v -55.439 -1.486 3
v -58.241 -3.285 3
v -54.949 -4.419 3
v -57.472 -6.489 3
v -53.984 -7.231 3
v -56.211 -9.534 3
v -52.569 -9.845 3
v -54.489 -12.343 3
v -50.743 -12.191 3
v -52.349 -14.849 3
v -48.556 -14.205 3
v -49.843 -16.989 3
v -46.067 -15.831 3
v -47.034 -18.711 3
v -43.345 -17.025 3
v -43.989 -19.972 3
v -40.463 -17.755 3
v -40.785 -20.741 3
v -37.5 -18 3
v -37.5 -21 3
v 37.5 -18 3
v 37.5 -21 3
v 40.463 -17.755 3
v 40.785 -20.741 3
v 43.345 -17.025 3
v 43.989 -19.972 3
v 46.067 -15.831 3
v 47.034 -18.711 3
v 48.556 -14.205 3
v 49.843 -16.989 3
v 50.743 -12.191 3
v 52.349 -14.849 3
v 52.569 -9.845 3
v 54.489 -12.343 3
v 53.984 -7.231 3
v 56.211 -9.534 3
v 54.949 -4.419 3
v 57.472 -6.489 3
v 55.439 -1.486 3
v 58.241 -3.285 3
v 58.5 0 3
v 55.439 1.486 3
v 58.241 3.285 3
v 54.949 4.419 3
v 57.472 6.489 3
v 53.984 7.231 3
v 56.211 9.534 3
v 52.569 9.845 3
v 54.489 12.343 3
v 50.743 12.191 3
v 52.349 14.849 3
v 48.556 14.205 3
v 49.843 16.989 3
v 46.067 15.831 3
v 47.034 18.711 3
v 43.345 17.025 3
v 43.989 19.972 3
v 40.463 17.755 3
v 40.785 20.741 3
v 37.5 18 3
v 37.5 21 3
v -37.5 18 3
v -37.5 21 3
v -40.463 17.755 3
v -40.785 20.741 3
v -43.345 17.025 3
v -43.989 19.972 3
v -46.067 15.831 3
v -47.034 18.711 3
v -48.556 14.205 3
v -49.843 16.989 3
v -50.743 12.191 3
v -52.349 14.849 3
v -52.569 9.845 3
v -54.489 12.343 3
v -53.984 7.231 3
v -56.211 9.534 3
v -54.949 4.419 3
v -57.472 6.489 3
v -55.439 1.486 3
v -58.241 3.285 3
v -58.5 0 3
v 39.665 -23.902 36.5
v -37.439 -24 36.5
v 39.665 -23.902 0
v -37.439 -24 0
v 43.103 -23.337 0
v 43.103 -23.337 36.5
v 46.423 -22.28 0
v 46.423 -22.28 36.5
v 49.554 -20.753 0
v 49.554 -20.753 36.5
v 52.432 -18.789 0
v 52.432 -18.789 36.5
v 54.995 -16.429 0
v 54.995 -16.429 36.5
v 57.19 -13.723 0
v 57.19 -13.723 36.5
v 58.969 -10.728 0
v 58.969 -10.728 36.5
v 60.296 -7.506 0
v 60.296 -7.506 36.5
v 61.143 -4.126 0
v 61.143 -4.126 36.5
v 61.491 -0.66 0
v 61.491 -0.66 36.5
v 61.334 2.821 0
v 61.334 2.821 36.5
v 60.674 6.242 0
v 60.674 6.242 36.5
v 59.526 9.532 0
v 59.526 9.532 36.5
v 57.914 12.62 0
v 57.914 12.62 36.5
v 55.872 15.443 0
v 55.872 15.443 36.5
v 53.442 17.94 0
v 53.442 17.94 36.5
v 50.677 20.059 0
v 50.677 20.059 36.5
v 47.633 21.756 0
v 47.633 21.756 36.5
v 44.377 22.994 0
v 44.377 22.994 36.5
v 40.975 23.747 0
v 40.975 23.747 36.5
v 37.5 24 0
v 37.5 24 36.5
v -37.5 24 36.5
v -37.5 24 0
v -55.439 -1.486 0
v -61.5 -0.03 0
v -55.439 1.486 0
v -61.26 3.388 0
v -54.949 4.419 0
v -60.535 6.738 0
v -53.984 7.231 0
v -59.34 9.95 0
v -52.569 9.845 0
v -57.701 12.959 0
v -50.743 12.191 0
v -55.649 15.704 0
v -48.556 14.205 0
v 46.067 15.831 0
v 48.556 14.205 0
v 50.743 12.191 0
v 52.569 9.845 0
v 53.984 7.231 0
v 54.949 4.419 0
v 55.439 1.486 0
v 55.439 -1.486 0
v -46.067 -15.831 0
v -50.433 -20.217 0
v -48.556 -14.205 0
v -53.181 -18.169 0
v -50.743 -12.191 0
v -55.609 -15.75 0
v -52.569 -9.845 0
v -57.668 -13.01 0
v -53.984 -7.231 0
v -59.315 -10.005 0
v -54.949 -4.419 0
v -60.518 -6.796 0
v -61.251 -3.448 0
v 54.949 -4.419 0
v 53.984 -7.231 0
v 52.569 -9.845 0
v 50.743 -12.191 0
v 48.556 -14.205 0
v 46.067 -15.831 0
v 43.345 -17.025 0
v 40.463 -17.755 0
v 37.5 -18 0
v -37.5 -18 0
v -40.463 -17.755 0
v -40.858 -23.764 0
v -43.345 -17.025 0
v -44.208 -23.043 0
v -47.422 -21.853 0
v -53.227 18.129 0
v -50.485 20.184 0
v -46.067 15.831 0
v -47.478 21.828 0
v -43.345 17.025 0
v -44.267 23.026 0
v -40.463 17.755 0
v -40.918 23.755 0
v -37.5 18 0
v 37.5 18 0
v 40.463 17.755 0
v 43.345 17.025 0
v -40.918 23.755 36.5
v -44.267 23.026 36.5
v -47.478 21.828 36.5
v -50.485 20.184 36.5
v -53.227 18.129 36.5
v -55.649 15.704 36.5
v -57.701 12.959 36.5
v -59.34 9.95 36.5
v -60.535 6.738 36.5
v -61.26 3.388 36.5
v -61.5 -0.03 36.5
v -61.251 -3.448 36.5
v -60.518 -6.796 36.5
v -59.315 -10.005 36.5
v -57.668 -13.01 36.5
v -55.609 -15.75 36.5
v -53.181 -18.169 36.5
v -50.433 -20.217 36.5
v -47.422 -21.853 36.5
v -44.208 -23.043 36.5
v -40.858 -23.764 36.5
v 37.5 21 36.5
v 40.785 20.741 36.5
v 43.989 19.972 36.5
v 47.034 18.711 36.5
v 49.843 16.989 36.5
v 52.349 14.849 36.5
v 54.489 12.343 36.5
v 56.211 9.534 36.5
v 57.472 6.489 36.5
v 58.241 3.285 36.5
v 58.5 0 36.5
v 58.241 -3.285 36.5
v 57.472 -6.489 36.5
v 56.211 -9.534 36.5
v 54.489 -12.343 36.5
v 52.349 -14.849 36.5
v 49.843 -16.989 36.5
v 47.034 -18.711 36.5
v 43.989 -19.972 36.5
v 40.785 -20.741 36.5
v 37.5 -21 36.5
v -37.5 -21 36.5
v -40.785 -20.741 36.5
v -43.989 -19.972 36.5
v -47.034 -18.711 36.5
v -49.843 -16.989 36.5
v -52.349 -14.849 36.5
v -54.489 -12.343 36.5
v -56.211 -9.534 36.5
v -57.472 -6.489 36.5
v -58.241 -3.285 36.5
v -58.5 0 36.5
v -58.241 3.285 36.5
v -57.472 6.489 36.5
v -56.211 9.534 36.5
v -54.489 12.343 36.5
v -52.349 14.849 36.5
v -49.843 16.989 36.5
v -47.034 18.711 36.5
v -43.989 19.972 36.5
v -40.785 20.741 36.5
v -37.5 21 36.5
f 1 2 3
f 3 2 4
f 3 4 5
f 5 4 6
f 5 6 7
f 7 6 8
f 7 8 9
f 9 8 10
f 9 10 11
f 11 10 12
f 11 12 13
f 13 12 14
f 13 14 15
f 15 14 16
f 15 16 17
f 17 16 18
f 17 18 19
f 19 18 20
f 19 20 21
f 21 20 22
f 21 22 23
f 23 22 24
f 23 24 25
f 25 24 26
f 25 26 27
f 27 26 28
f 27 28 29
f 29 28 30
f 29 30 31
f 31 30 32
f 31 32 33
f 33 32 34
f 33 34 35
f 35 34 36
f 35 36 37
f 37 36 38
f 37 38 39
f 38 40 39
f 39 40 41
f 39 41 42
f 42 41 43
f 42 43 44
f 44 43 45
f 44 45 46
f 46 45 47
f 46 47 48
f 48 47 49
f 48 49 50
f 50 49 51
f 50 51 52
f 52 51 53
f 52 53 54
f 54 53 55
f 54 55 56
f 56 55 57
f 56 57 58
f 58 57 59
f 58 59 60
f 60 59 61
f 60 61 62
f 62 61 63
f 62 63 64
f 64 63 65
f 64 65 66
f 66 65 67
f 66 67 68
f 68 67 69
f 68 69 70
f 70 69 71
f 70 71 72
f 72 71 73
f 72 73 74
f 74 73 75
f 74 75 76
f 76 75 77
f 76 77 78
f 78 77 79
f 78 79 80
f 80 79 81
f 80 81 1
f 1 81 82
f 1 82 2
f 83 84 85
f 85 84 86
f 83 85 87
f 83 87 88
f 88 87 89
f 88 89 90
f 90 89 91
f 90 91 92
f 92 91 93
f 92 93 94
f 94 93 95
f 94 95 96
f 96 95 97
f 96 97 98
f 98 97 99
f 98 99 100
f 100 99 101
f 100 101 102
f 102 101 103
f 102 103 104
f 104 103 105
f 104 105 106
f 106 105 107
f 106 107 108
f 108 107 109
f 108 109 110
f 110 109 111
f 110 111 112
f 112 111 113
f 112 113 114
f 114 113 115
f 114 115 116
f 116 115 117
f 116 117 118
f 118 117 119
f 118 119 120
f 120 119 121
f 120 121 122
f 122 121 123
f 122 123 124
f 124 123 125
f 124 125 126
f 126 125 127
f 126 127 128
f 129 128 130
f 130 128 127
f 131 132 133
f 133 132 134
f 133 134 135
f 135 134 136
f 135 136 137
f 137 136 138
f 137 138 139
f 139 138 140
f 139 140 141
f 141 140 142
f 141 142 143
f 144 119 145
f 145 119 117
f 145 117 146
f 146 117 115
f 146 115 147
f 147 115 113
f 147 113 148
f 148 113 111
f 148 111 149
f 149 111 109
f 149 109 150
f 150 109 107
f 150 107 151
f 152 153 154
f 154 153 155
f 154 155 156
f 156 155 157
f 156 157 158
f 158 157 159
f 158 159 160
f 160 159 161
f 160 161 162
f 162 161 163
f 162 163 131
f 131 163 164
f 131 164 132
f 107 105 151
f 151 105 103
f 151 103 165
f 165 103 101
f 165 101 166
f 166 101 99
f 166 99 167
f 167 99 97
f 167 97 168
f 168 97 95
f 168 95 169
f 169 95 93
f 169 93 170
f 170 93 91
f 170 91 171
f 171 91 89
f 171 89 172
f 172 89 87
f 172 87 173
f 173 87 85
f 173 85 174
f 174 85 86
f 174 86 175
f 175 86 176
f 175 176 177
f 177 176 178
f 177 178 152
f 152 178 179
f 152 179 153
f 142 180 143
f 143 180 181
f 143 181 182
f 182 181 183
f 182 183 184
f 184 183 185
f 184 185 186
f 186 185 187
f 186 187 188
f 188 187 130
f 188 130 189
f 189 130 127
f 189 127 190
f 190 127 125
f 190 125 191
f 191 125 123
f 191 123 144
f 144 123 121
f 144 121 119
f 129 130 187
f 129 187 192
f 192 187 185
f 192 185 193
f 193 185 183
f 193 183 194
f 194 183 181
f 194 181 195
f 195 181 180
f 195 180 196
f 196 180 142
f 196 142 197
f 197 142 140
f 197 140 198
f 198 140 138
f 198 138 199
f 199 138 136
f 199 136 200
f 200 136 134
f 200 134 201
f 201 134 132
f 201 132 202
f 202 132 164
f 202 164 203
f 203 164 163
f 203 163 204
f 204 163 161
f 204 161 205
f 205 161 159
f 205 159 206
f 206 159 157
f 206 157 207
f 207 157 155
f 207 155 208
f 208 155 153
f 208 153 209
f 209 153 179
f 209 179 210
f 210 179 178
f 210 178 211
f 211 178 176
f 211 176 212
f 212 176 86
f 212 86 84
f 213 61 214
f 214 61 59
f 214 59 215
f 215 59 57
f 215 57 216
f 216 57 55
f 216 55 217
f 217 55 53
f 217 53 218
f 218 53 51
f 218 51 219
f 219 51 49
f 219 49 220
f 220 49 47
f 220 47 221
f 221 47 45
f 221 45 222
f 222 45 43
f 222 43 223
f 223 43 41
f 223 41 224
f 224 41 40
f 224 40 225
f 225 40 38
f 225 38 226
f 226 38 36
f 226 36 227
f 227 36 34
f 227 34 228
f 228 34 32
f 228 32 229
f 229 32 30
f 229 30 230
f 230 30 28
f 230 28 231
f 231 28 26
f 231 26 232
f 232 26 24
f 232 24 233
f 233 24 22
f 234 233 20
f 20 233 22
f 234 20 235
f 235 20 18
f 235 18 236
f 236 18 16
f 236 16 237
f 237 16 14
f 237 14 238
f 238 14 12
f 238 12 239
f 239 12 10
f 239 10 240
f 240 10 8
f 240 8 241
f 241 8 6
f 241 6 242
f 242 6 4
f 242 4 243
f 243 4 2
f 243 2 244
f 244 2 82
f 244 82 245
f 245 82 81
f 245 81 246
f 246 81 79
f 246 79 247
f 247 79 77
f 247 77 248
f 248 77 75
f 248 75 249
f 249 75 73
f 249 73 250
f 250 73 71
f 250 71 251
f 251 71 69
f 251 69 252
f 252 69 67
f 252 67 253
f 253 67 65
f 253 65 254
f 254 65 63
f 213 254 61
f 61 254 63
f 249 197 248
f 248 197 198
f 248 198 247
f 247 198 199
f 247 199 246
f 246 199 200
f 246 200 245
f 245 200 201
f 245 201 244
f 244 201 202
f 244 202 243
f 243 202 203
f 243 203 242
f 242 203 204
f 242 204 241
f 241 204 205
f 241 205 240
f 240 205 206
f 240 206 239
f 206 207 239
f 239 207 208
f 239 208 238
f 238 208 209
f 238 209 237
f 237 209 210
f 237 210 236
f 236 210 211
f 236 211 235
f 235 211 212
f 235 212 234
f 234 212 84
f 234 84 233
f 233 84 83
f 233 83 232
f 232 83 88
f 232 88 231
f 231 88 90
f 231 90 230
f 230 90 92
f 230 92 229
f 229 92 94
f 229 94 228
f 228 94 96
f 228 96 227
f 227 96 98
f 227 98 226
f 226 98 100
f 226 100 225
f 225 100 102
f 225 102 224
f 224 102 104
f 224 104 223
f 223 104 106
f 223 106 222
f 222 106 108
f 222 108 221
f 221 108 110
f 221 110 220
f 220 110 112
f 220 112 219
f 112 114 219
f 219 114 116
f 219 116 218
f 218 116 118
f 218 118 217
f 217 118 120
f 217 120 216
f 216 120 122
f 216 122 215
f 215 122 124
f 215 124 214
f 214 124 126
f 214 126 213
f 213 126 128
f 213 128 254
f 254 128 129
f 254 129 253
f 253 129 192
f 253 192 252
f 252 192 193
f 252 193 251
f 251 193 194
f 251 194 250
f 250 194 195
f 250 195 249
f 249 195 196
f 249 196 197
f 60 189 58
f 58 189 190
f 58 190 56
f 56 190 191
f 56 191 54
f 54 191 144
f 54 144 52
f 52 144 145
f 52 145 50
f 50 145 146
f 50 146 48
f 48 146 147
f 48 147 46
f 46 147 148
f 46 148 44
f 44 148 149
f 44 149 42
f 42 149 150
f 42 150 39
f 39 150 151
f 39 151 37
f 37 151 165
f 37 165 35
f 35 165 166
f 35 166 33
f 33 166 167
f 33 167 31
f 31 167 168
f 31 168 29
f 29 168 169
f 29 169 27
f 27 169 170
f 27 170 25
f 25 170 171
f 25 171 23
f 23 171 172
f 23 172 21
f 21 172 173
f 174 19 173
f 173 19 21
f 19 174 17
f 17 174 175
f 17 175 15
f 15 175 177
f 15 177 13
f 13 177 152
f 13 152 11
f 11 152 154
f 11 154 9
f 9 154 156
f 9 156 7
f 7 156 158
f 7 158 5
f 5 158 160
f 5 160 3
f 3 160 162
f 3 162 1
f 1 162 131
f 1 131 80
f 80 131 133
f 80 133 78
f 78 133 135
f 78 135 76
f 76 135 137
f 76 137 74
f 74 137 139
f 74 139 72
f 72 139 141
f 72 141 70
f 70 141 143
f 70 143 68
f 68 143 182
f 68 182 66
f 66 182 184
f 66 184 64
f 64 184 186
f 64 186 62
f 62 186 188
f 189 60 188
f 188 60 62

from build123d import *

# Parameters (mm, degrees)
BOSS_EXTRUDE2_DEPTH = 3
BOSS_EXTRUDE3_DEPTH = 33.5
CUT_EXTRUDE1_DEPTH  = 3


with BuildPart() as part:
    # Sketch1 → Boss-Extrude2 (new body)
    with BuildSketch(Plane.XY):
        with BuildLine():
            ThreePointArc((-37.5, 24), (-61.5, 0), (-37.5, -24))
            Line((-37.5, -24), (39.664725273, -23.90217489))
            ThreePointArc((39.664725273, -23.90217489), (61.475531249, 1.083467265), (37.5, 24))
            Line((37.5, 24), (-37.5, 24))
        make_face()
    extrude(amount=BOSS_EXTRUDE2_DEPTH)

    # Sketch3 → Boss-Extrude3 (add)
    with BuildSketch(Plane.XY.offset(3)):
        with BuildLine():
            ThreePointArc((-37.5, 24), (-61.5, 0), (-37.5, -24))
            Line((-37.5, -24), (39.664725273, -23.90217489))
            ThreePointArc((39.664725273, -23.90217489), (61.475531249, 1.083467265), (37.5, 24))
            Line((37.5, 24), (-37.5, 24))
        make_face()
        with BuildLine():
            ThreePointArc((-37.5, -21), (-58.5, 0), (-37.5, 21))
            Line((-37.5, 21), (37.5, 21))
            ThreePointArc((37.5, 21), (58.5, 0), (37.5, -21))
            Line((37.5, -21), (-37.5, -21))
        make_face(mode=Mode.SUBTRACT)
    extrude(amount=BOSS_EXTRUDE3_DEPTH)

    # Sketch4 → Cut-Extrude1 (cut)
    with BuildSketch(Plane(origin=(0, 0, 0), x_dir=(-1, 0, 0), z_dir=(0, 0, -1))):
        with BuildLine():
            ThreePointArc((-37.5, 18), (-55.5, 0), (-37.5, -18))
            Line((-37.5, -18), (37.5, -18))
            ThreePointArc((37.5, -18), (55.5, 0), (37.5, 18))
            Line((37.5, 18), (-37.5, 18))
        make_face()
    extrude(amount=-CUT_EXTRUDE1_DEPTH, mode=Mode.SUBTRACT)


solid = part.part
